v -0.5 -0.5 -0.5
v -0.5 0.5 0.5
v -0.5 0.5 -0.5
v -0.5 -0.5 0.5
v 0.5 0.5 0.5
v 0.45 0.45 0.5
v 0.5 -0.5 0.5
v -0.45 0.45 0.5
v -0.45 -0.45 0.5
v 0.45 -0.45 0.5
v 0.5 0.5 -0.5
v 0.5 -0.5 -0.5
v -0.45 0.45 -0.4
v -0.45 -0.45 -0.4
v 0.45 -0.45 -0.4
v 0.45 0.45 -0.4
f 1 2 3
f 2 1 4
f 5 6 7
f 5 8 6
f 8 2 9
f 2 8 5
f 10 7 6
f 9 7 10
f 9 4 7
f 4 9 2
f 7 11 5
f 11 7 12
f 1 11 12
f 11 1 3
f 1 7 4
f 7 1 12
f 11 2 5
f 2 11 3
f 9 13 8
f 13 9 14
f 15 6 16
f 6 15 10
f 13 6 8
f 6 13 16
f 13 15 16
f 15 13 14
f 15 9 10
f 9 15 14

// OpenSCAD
difference(){
    cube(size=[1,1,1], center=true);
    translate([0,0,0.1])
        cube(size=[0.9,0.9,1], center=true);
}
